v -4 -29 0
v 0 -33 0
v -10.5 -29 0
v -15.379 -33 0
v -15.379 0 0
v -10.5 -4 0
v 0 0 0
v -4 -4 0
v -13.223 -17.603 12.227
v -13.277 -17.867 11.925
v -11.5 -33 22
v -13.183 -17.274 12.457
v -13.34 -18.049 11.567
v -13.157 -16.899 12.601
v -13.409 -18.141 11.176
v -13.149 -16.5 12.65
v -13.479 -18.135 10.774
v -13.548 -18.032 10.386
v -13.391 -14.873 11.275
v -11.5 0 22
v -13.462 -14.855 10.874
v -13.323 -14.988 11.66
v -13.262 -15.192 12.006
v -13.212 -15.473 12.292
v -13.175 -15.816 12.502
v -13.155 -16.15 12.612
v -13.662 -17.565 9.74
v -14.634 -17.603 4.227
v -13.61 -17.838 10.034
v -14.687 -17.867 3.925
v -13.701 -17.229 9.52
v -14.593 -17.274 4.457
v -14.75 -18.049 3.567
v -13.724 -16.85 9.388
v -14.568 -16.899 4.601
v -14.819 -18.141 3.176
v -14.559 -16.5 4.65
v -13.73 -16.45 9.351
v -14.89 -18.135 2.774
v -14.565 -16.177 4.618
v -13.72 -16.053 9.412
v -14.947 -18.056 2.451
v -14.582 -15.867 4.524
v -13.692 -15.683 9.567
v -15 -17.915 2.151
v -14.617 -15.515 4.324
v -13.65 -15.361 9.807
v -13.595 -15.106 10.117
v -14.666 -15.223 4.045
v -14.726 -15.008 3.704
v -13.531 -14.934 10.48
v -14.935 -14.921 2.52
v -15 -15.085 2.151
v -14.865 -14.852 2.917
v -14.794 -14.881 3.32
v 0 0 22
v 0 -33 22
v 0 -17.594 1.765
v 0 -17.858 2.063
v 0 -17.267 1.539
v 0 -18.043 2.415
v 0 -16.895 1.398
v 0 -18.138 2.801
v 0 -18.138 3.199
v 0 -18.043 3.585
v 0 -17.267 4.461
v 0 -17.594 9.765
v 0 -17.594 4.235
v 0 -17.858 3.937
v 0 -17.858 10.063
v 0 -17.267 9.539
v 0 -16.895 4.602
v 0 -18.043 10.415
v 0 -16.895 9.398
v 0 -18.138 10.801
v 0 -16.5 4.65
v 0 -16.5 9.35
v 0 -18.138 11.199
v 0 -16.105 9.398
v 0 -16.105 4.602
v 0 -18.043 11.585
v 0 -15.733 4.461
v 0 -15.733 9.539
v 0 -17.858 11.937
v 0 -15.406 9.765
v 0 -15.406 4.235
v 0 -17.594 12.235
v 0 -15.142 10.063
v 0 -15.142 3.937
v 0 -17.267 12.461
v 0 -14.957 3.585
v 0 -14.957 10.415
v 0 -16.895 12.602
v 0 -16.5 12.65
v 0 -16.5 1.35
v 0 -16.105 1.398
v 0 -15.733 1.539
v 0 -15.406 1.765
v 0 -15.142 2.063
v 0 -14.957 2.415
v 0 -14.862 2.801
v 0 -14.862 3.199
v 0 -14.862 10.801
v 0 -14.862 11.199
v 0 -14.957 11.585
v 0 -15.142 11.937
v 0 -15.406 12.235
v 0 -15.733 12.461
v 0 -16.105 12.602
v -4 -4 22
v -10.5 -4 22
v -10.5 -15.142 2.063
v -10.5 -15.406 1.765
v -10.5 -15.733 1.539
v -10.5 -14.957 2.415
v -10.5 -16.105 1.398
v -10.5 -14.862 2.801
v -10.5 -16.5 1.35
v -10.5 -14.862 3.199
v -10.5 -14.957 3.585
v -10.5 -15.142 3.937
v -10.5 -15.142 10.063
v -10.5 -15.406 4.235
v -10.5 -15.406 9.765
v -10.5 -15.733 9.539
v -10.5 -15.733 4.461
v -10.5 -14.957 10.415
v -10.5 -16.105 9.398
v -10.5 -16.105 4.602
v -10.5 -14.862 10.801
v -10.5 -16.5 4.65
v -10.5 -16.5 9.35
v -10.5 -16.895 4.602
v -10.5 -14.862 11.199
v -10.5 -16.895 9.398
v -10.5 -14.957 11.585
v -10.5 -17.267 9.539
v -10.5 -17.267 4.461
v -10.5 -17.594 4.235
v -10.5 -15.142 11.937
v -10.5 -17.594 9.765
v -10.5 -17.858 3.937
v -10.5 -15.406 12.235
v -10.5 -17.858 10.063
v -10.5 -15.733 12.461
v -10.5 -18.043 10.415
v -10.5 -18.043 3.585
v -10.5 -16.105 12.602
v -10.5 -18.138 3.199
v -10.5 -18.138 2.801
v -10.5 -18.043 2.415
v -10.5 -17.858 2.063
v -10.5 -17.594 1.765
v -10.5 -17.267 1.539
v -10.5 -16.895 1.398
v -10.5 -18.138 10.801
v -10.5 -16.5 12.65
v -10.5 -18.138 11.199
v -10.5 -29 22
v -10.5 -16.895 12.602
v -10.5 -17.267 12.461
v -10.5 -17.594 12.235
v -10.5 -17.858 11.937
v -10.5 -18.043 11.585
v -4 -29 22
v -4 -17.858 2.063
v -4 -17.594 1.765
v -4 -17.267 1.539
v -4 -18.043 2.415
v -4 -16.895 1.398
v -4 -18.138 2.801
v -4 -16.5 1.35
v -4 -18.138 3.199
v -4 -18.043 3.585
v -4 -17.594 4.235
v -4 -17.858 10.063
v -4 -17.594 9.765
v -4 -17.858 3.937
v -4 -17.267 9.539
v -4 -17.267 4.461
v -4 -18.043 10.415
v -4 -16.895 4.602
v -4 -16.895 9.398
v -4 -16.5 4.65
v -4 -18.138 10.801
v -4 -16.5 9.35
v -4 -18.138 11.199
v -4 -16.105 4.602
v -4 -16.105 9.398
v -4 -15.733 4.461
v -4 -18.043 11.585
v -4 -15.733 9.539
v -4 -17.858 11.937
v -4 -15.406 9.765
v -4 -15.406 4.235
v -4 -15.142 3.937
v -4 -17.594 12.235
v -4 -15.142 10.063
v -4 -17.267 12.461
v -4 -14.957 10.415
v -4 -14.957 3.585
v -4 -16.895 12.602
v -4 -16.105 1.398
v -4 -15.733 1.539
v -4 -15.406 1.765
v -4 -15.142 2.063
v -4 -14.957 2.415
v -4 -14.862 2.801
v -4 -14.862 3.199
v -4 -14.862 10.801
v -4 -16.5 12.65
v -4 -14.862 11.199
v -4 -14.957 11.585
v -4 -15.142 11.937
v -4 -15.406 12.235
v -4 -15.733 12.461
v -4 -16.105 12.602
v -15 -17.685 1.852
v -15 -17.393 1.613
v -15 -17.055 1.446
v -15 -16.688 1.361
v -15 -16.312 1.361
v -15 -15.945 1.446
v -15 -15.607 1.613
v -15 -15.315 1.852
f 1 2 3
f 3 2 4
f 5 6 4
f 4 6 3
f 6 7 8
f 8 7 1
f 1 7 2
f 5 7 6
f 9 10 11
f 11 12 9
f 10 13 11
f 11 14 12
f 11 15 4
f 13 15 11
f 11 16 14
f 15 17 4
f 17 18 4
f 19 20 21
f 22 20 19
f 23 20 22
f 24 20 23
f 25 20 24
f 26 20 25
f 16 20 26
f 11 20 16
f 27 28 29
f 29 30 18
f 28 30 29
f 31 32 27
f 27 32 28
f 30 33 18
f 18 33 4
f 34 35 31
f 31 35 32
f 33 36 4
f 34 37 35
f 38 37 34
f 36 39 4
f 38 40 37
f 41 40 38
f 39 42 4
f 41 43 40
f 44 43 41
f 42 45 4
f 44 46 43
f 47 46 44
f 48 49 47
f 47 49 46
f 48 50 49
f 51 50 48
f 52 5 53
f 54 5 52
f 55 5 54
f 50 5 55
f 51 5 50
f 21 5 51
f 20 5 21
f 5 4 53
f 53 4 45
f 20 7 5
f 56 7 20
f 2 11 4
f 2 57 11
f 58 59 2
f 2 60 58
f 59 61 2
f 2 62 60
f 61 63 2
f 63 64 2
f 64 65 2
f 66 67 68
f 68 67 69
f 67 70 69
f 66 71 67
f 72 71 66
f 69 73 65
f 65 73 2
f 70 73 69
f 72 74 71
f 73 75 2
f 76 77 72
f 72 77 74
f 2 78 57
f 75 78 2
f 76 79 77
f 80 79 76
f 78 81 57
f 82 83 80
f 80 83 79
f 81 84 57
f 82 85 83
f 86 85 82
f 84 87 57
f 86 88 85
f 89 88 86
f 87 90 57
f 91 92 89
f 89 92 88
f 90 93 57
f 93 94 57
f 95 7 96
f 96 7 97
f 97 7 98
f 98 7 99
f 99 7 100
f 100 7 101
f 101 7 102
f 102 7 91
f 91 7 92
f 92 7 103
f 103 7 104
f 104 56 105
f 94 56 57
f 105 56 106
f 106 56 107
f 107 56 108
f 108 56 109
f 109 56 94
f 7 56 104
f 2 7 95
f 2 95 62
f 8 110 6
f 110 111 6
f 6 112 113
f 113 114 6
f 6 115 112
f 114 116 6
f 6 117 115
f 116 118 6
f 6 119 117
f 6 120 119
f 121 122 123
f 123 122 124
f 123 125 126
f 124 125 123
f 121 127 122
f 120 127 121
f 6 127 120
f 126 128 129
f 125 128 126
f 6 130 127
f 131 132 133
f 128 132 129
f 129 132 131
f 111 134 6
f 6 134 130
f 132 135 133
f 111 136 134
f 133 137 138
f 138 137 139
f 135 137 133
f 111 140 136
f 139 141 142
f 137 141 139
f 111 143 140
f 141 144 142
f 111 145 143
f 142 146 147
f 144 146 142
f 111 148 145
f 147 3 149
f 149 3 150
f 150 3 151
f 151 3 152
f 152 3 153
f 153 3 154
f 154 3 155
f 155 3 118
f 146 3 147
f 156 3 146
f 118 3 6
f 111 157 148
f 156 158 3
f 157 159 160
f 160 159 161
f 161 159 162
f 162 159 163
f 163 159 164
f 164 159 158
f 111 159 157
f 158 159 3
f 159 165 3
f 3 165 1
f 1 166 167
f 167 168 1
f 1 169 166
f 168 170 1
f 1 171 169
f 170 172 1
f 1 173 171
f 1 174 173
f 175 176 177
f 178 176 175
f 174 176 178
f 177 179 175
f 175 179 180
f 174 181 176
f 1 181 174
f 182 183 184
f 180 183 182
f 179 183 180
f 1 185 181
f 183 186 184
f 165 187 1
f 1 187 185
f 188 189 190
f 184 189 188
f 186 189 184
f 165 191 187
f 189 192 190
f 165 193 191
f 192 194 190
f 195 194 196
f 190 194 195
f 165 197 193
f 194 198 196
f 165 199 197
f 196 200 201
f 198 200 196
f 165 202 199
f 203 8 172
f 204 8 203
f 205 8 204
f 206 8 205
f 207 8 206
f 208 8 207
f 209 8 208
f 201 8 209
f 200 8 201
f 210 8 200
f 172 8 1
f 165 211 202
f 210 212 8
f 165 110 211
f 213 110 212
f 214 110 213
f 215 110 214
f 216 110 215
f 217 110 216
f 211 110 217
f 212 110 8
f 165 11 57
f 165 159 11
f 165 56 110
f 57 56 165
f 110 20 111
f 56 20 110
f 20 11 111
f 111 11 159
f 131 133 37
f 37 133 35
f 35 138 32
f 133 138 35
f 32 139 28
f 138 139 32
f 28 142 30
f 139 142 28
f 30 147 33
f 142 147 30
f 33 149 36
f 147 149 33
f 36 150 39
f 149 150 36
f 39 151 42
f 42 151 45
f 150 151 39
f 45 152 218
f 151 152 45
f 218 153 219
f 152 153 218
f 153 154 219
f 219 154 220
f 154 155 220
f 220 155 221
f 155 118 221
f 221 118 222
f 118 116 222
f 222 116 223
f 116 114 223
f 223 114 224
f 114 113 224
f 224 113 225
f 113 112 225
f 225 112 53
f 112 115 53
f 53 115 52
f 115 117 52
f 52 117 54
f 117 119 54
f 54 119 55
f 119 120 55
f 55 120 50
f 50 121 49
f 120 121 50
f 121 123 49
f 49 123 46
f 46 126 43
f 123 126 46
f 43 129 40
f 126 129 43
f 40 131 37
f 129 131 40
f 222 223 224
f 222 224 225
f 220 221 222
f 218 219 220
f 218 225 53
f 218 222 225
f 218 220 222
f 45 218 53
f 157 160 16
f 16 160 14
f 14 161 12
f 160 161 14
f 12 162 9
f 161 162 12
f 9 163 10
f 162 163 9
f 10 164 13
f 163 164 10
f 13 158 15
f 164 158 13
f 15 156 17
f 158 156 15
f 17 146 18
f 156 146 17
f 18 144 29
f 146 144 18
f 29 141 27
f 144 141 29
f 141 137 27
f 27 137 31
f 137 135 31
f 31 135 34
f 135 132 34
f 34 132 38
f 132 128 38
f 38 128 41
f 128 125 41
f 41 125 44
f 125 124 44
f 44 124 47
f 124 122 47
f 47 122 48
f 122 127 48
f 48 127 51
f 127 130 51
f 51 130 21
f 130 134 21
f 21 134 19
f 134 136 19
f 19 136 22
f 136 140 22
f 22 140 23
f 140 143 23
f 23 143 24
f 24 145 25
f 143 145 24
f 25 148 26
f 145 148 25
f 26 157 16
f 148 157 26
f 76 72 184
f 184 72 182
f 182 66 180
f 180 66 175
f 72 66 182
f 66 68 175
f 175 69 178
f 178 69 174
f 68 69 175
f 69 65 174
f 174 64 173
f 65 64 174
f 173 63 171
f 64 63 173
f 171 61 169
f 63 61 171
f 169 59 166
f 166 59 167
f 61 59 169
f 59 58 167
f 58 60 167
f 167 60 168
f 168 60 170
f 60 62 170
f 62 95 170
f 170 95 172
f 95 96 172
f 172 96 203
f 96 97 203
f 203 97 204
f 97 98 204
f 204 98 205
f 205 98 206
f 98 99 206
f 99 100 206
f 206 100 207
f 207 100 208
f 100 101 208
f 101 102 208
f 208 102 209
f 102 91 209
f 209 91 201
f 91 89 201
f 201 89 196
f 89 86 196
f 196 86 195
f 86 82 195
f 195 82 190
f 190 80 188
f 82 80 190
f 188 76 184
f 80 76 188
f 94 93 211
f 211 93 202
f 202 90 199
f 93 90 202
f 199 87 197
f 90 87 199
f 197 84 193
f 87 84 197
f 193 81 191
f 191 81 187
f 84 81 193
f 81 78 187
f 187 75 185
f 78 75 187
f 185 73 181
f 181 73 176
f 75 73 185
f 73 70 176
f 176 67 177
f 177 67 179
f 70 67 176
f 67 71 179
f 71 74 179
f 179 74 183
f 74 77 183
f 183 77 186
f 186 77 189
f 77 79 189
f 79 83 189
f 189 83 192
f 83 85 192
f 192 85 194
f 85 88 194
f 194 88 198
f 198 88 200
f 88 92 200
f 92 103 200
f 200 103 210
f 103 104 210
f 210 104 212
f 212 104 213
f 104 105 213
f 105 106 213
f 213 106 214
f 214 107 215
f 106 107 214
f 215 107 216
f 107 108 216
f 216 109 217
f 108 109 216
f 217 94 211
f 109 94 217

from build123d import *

# Parameters (mm, degrees)
PAD_DEPTH       = 33
SKETCH001_W     = 6.5
SKETCH001_H     = 25
POCKET_DEPTH    = 30
SKETCH002_R     = 1.65
POCKET001_DEPTH = 15


with BuildPart() as part:
    # Sketch → Pad (new body)
    with BuildSketch(Plane.XZ):
        Polygon((-15.379194, 0), (0, 0), (0, 22), (-11.5, 22), align=None)
    extrude(amount=PAD_DEPTH)

    # Sketch001 (on Face3 of Pad) → Pocket (cut)
    with BuildSketch(Plane(origin=(0, 0, 22), x_dir=(-1, 0, 0), z_dir=(0, 0, 1))):
        with Locations((7.25, 16.5)):
            Rectangle(SKETCH001_W, SKETCH001_H)
    extrude(amount=-POCKET_DEPTH, mode=Mode.SUBTRACT)

    # Sketch002 (on Face5 of Pocket) → Pocket001 (cut)
    with BuildSketch(Plane(origin=(0, 0, 0), x_dir=(0, 0, 1), z_dir=(1, 0, 0))):
        with Locations((3, 16.5)):
            Circle(SKETCH002_R)
        with Locations((11, 16.5)):
            Circle(SKETCH002_R)
    extrude(amount=-POCKET001_DEPTH, mode=Mode.SUBTRACT)


solid = part.part
